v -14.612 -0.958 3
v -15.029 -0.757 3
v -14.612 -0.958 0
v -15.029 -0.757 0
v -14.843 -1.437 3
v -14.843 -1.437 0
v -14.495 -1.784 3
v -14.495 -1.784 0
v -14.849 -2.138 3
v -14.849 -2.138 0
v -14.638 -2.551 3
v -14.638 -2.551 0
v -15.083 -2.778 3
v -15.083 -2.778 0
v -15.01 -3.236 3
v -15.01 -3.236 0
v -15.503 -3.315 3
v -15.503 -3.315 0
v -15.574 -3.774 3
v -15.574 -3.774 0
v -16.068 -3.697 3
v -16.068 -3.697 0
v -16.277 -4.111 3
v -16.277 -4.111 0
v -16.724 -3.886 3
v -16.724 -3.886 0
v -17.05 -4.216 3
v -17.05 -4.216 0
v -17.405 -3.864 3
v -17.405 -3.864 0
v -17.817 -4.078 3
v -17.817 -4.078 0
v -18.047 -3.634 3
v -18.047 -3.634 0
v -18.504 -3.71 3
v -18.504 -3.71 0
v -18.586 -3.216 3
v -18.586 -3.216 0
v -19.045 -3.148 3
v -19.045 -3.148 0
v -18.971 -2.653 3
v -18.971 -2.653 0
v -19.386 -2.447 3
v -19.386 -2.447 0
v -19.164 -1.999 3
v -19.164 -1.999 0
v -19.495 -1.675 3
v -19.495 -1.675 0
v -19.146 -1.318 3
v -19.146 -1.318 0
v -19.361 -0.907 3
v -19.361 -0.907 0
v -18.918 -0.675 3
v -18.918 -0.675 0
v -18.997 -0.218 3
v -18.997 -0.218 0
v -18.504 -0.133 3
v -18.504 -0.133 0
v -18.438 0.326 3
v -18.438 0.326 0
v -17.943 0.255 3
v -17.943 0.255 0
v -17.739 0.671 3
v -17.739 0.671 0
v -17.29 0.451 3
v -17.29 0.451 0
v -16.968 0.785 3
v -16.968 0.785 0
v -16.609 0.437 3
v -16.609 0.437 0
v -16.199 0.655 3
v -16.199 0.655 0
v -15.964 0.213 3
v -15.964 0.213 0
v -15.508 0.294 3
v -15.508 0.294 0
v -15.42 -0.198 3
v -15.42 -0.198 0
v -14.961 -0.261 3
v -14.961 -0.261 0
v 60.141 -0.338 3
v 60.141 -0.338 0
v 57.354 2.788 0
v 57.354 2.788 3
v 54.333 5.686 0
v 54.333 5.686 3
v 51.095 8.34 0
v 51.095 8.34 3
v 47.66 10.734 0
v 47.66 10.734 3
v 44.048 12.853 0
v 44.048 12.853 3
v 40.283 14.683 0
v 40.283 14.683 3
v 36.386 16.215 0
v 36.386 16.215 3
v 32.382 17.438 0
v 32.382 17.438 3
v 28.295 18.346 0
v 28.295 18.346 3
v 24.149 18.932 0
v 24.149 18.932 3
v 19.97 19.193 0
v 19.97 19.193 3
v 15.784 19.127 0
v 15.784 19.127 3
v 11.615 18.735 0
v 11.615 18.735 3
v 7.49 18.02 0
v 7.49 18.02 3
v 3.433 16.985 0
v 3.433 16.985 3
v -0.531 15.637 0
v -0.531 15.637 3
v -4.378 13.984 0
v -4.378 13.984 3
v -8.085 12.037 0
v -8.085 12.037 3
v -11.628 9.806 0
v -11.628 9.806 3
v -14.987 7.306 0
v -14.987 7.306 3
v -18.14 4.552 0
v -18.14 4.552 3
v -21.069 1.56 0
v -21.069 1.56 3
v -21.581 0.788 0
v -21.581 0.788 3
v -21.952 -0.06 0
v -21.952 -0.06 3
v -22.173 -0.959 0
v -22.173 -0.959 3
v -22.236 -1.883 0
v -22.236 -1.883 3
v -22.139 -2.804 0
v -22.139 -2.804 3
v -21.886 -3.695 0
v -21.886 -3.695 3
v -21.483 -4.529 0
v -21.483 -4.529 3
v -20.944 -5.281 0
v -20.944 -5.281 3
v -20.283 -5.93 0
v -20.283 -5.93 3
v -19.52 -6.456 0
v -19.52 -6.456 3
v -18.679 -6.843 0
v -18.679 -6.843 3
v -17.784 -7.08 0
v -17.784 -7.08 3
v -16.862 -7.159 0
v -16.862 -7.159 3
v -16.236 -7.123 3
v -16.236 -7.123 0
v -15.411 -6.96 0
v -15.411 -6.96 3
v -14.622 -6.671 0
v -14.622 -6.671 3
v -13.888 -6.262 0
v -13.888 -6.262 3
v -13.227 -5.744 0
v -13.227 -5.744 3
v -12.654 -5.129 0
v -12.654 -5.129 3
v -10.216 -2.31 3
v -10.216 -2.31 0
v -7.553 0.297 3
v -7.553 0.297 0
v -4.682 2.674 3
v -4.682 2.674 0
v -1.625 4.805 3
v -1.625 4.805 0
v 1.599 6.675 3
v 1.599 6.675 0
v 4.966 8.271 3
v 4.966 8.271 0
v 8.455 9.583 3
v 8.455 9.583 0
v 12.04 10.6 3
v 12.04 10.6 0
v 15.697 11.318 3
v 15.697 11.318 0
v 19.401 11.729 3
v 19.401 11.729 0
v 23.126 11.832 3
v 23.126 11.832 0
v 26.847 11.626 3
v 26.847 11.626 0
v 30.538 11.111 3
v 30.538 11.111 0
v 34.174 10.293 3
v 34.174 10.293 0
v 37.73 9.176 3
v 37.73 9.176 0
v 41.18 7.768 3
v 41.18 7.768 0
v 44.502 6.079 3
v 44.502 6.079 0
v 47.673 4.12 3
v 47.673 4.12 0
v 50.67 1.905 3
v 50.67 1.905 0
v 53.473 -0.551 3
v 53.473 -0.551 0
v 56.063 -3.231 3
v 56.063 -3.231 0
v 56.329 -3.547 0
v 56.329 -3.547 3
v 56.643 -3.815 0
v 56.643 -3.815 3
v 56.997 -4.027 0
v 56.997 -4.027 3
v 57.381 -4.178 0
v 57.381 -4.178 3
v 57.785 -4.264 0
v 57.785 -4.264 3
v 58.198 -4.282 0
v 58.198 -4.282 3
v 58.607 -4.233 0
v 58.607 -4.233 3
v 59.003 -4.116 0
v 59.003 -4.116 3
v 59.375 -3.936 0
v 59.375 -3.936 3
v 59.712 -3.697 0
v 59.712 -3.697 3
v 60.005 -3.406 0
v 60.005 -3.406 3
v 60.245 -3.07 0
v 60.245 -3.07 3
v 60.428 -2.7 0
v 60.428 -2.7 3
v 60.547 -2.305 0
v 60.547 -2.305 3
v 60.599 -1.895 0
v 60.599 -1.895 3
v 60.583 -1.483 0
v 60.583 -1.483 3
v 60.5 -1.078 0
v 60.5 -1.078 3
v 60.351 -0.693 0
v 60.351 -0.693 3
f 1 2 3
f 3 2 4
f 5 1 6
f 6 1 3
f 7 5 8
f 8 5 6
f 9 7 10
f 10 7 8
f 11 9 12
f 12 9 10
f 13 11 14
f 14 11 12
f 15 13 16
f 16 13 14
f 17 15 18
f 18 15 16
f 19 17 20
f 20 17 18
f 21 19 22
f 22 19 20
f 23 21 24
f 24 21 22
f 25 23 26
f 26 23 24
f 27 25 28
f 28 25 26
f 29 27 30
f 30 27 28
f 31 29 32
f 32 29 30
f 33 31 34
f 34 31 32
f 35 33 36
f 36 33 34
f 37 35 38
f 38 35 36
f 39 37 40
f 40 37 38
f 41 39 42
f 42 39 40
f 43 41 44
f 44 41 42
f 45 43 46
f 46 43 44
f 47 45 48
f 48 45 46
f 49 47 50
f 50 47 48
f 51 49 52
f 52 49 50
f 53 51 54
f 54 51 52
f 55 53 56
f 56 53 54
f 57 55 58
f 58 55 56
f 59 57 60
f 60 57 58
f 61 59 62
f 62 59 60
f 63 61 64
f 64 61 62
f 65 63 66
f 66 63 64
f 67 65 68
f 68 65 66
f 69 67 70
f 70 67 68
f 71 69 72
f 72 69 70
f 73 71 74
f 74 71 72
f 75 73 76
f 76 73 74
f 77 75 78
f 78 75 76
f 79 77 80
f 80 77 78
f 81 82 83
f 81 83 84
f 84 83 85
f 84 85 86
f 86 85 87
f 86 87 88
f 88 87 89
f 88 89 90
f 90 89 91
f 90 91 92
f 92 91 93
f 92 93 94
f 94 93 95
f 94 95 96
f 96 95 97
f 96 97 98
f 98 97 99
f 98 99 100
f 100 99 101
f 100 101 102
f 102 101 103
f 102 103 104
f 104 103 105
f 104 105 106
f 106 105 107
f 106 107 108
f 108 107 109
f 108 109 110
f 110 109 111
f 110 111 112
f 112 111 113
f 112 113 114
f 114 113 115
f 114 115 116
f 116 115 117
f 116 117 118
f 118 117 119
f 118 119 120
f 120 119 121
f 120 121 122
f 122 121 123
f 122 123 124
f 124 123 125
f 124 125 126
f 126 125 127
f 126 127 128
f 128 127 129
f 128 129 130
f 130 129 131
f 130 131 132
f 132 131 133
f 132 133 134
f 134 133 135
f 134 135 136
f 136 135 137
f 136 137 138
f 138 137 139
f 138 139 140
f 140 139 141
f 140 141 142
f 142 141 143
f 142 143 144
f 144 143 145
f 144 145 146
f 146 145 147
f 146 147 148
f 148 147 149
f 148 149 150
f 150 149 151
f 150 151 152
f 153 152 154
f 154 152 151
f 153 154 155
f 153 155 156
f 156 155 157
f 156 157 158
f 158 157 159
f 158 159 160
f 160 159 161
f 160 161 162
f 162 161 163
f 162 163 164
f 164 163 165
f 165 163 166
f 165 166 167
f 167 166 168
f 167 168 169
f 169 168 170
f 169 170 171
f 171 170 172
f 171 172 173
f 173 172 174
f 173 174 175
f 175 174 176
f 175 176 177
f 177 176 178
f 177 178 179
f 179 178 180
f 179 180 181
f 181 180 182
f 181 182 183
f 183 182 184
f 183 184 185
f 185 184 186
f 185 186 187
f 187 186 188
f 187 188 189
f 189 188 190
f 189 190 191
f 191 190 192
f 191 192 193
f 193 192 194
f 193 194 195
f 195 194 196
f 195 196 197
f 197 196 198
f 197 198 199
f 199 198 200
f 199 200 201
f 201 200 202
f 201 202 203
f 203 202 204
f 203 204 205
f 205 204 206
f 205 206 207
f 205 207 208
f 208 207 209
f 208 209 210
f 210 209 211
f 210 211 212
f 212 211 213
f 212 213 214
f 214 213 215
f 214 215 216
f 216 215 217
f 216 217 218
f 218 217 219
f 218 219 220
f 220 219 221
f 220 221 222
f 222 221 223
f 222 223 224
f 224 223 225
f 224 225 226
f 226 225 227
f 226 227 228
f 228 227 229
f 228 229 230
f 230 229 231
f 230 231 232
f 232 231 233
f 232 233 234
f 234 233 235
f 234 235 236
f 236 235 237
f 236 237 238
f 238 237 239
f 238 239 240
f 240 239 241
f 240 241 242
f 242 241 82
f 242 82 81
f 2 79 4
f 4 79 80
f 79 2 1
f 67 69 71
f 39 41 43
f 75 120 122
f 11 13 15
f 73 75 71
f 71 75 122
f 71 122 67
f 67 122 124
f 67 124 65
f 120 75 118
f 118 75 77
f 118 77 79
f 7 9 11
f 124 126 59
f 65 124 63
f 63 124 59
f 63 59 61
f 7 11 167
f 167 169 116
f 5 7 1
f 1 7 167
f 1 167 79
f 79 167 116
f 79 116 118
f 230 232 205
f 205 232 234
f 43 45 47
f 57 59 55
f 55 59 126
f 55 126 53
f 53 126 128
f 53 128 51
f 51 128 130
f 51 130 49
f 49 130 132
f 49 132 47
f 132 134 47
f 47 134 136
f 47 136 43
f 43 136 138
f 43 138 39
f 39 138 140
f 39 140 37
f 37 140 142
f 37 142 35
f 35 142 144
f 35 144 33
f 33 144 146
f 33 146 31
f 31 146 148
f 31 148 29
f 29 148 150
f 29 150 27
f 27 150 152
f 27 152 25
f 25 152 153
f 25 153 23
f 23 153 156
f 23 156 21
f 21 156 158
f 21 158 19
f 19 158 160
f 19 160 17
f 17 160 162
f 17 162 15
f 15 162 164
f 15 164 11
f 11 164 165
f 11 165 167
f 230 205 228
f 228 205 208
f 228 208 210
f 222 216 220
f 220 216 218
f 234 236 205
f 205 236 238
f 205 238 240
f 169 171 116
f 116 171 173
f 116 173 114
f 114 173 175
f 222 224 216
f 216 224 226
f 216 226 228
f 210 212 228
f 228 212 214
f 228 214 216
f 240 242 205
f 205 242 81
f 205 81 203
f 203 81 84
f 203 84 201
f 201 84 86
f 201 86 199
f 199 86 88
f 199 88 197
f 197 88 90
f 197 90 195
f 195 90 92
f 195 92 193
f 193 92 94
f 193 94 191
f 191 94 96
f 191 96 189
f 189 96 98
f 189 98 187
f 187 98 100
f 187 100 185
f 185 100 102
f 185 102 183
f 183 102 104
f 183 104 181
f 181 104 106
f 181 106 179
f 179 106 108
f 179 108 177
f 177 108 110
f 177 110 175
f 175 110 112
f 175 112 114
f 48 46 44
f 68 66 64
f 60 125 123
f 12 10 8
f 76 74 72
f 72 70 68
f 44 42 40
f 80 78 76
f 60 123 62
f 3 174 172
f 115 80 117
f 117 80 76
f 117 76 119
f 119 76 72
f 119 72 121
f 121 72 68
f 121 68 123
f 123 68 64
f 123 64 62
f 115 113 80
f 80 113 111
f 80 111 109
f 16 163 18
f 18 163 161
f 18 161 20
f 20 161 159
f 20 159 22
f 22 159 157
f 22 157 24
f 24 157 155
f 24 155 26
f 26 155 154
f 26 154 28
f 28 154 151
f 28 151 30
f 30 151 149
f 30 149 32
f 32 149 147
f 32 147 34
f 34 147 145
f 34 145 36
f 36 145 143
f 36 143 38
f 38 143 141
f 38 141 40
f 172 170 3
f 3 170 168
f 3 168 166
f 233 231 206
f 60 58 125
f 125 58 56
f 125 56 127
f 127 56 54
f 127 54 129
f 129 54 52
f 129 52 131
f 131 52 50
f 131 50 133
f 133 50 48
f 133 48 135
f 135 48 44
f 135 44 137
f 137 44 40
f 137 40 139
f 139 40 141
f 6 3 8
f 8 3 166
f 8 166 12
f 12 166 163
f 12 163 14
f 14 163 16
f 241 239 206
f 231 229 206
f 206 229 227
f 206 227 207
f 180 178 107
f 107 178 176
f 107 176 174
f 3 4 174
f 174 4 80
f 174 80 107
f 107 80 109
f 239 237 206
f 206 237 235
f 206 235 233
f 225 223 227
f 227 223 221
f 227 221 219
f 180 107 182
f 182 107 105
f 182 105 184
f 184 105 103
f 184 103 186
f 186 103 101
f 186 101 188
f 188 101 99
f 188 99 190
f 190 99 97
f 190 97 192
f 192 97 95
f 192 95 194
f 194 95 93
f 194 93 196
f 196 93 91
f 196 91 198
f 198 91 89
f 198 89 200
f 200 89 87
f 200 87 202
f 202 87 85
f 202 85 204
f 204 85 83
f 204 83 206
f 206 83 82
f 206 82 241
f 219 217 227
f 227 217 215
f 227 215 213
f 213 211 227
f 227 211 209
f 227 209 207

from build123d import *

# Parameters (mm, degrees)
BOSS_EXTRUDE1_DEPTH = 3


with BuildPart() as part:
    # Sketch3 → Boss-Extrude1 (new body)
    with BuildSketch(Plane.XY):
        with BuildLine():
            ThreePointArc((-21.06925633, 1.560185503), (-21.702383426, -4.120337722), (-16.861546239, -7.159332517))
            Line((-16.861546239, -7.159332517), (-16.235942246, -7.122800897))
            ThreePointArc((-16.235942246, -7.122800897), (-14.247317716, -6.480760333), (-12.653836147, -5.128850538))
            ThreePointArc((-12.653836147, -5.128850538), (21.262556938, 11.81913919), (56.062735888, -3.230898045))
            ThreePointArc((56.062735888, -3.230898045), (59.548283557, -3.823314658), (60.140700171, -0.337766989))
            ThreePointArc((60.140700171, -0.337766989), (19.96998669, 19.192613792), (-21.06925633, 1.560185503))
        make_face()
        Polygon((-14.842971244, -1.436629161), (-14.495267888, -1.784332517), (-14.848821278, -2.137885908), (-14.637840313, -2.550832882), (-15.083092963, -2.778319315), (-15.00954079, -3.236171091), (-15.503211236, -3.315477399), (-15.574237606, -3.773727796), (-16.068337858, -3.697144889), (-16.277038544, -4.111248976), (-16.723538831, -3.886221213), (-17.049626765, -4.215925369), (-17.405124343, -3.864326917), (-17.816901648, -4.077581746), (-18.046839834, -3.633590269), (-18.504279068, -3.70966601), (-18.586306367, -3.21644038), (-19.04494145, -3.147941973), (-18.971084274, -2.65342694), (-19.386332882, -2.447012878), (-19.163770631, -1.999278532), (-19.495267888, -1.67501361), (-19.145635065, -1.317582653), (-19.361157273, -0.906987537), (-18.918440472, -0.674604591), (-18.997037466, -0.217591808), (-18.504271649, -0.132846012), (-18.438303288, 0.326159812), (-17.94338851, 0.255030612), (-17.73926735, 0.671411115), (-17.290312559, 0.451321143), (-16.967880508, 0.784601421), (-16.60852704, 0.436944858), (-16.199126599, 0.654727893), (-15.964305958, 0.213299227), (-15.507733522, 0.294415085), (-15.420271807, -0.197875935), (-14.960909199, -0.261312244), (-15.029308259, -0.756611718), (-14.611808522, -0.958433771), align=None, mode=Mode.SUBTRACT)
    extrude(amount=BOSS_EXTRUDE1_DEPTH)


solid = part.part
